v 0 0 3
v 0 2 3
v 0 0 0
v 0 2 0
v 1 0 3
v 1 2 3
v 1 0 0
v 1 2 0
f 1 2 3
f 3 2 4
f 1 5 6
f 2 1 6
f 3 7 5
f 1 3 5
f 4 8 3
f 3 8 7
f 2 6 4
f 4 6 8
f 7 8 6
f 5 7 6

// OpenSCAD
/*
 * OpenSCAD Workshop Examples
 * Copyright (c) 2013 Anar Software LLC. < http://anars.com >
 *
 * This program is free software: you can redistribute it and/or modify it under
 * the terms of the GNU General Public License as published by the Free Software
 * Foundation, either version 3 of the License, or (at your option) any later
 * version.
 *
 * This program is distributed in the hope that it will be useful, but WITHOUT
 * ANY WARRANTY; without even the implied warranty of MERCHANTABILITY or FITNESS
 * FOR A PARTICULAR PURPOSE. See the GNU General Public License for more details.
 *
 * You should have received a copy of the GNU General Public License along with
 * this program. If not, see < http://www.gnu.org/licenses/ >
 *
 */
/*

Creates a rectangular prism.


Parameters :

	cube(size = [width, height, depth]);

*/

cube(size = [1, 2, 3]);
